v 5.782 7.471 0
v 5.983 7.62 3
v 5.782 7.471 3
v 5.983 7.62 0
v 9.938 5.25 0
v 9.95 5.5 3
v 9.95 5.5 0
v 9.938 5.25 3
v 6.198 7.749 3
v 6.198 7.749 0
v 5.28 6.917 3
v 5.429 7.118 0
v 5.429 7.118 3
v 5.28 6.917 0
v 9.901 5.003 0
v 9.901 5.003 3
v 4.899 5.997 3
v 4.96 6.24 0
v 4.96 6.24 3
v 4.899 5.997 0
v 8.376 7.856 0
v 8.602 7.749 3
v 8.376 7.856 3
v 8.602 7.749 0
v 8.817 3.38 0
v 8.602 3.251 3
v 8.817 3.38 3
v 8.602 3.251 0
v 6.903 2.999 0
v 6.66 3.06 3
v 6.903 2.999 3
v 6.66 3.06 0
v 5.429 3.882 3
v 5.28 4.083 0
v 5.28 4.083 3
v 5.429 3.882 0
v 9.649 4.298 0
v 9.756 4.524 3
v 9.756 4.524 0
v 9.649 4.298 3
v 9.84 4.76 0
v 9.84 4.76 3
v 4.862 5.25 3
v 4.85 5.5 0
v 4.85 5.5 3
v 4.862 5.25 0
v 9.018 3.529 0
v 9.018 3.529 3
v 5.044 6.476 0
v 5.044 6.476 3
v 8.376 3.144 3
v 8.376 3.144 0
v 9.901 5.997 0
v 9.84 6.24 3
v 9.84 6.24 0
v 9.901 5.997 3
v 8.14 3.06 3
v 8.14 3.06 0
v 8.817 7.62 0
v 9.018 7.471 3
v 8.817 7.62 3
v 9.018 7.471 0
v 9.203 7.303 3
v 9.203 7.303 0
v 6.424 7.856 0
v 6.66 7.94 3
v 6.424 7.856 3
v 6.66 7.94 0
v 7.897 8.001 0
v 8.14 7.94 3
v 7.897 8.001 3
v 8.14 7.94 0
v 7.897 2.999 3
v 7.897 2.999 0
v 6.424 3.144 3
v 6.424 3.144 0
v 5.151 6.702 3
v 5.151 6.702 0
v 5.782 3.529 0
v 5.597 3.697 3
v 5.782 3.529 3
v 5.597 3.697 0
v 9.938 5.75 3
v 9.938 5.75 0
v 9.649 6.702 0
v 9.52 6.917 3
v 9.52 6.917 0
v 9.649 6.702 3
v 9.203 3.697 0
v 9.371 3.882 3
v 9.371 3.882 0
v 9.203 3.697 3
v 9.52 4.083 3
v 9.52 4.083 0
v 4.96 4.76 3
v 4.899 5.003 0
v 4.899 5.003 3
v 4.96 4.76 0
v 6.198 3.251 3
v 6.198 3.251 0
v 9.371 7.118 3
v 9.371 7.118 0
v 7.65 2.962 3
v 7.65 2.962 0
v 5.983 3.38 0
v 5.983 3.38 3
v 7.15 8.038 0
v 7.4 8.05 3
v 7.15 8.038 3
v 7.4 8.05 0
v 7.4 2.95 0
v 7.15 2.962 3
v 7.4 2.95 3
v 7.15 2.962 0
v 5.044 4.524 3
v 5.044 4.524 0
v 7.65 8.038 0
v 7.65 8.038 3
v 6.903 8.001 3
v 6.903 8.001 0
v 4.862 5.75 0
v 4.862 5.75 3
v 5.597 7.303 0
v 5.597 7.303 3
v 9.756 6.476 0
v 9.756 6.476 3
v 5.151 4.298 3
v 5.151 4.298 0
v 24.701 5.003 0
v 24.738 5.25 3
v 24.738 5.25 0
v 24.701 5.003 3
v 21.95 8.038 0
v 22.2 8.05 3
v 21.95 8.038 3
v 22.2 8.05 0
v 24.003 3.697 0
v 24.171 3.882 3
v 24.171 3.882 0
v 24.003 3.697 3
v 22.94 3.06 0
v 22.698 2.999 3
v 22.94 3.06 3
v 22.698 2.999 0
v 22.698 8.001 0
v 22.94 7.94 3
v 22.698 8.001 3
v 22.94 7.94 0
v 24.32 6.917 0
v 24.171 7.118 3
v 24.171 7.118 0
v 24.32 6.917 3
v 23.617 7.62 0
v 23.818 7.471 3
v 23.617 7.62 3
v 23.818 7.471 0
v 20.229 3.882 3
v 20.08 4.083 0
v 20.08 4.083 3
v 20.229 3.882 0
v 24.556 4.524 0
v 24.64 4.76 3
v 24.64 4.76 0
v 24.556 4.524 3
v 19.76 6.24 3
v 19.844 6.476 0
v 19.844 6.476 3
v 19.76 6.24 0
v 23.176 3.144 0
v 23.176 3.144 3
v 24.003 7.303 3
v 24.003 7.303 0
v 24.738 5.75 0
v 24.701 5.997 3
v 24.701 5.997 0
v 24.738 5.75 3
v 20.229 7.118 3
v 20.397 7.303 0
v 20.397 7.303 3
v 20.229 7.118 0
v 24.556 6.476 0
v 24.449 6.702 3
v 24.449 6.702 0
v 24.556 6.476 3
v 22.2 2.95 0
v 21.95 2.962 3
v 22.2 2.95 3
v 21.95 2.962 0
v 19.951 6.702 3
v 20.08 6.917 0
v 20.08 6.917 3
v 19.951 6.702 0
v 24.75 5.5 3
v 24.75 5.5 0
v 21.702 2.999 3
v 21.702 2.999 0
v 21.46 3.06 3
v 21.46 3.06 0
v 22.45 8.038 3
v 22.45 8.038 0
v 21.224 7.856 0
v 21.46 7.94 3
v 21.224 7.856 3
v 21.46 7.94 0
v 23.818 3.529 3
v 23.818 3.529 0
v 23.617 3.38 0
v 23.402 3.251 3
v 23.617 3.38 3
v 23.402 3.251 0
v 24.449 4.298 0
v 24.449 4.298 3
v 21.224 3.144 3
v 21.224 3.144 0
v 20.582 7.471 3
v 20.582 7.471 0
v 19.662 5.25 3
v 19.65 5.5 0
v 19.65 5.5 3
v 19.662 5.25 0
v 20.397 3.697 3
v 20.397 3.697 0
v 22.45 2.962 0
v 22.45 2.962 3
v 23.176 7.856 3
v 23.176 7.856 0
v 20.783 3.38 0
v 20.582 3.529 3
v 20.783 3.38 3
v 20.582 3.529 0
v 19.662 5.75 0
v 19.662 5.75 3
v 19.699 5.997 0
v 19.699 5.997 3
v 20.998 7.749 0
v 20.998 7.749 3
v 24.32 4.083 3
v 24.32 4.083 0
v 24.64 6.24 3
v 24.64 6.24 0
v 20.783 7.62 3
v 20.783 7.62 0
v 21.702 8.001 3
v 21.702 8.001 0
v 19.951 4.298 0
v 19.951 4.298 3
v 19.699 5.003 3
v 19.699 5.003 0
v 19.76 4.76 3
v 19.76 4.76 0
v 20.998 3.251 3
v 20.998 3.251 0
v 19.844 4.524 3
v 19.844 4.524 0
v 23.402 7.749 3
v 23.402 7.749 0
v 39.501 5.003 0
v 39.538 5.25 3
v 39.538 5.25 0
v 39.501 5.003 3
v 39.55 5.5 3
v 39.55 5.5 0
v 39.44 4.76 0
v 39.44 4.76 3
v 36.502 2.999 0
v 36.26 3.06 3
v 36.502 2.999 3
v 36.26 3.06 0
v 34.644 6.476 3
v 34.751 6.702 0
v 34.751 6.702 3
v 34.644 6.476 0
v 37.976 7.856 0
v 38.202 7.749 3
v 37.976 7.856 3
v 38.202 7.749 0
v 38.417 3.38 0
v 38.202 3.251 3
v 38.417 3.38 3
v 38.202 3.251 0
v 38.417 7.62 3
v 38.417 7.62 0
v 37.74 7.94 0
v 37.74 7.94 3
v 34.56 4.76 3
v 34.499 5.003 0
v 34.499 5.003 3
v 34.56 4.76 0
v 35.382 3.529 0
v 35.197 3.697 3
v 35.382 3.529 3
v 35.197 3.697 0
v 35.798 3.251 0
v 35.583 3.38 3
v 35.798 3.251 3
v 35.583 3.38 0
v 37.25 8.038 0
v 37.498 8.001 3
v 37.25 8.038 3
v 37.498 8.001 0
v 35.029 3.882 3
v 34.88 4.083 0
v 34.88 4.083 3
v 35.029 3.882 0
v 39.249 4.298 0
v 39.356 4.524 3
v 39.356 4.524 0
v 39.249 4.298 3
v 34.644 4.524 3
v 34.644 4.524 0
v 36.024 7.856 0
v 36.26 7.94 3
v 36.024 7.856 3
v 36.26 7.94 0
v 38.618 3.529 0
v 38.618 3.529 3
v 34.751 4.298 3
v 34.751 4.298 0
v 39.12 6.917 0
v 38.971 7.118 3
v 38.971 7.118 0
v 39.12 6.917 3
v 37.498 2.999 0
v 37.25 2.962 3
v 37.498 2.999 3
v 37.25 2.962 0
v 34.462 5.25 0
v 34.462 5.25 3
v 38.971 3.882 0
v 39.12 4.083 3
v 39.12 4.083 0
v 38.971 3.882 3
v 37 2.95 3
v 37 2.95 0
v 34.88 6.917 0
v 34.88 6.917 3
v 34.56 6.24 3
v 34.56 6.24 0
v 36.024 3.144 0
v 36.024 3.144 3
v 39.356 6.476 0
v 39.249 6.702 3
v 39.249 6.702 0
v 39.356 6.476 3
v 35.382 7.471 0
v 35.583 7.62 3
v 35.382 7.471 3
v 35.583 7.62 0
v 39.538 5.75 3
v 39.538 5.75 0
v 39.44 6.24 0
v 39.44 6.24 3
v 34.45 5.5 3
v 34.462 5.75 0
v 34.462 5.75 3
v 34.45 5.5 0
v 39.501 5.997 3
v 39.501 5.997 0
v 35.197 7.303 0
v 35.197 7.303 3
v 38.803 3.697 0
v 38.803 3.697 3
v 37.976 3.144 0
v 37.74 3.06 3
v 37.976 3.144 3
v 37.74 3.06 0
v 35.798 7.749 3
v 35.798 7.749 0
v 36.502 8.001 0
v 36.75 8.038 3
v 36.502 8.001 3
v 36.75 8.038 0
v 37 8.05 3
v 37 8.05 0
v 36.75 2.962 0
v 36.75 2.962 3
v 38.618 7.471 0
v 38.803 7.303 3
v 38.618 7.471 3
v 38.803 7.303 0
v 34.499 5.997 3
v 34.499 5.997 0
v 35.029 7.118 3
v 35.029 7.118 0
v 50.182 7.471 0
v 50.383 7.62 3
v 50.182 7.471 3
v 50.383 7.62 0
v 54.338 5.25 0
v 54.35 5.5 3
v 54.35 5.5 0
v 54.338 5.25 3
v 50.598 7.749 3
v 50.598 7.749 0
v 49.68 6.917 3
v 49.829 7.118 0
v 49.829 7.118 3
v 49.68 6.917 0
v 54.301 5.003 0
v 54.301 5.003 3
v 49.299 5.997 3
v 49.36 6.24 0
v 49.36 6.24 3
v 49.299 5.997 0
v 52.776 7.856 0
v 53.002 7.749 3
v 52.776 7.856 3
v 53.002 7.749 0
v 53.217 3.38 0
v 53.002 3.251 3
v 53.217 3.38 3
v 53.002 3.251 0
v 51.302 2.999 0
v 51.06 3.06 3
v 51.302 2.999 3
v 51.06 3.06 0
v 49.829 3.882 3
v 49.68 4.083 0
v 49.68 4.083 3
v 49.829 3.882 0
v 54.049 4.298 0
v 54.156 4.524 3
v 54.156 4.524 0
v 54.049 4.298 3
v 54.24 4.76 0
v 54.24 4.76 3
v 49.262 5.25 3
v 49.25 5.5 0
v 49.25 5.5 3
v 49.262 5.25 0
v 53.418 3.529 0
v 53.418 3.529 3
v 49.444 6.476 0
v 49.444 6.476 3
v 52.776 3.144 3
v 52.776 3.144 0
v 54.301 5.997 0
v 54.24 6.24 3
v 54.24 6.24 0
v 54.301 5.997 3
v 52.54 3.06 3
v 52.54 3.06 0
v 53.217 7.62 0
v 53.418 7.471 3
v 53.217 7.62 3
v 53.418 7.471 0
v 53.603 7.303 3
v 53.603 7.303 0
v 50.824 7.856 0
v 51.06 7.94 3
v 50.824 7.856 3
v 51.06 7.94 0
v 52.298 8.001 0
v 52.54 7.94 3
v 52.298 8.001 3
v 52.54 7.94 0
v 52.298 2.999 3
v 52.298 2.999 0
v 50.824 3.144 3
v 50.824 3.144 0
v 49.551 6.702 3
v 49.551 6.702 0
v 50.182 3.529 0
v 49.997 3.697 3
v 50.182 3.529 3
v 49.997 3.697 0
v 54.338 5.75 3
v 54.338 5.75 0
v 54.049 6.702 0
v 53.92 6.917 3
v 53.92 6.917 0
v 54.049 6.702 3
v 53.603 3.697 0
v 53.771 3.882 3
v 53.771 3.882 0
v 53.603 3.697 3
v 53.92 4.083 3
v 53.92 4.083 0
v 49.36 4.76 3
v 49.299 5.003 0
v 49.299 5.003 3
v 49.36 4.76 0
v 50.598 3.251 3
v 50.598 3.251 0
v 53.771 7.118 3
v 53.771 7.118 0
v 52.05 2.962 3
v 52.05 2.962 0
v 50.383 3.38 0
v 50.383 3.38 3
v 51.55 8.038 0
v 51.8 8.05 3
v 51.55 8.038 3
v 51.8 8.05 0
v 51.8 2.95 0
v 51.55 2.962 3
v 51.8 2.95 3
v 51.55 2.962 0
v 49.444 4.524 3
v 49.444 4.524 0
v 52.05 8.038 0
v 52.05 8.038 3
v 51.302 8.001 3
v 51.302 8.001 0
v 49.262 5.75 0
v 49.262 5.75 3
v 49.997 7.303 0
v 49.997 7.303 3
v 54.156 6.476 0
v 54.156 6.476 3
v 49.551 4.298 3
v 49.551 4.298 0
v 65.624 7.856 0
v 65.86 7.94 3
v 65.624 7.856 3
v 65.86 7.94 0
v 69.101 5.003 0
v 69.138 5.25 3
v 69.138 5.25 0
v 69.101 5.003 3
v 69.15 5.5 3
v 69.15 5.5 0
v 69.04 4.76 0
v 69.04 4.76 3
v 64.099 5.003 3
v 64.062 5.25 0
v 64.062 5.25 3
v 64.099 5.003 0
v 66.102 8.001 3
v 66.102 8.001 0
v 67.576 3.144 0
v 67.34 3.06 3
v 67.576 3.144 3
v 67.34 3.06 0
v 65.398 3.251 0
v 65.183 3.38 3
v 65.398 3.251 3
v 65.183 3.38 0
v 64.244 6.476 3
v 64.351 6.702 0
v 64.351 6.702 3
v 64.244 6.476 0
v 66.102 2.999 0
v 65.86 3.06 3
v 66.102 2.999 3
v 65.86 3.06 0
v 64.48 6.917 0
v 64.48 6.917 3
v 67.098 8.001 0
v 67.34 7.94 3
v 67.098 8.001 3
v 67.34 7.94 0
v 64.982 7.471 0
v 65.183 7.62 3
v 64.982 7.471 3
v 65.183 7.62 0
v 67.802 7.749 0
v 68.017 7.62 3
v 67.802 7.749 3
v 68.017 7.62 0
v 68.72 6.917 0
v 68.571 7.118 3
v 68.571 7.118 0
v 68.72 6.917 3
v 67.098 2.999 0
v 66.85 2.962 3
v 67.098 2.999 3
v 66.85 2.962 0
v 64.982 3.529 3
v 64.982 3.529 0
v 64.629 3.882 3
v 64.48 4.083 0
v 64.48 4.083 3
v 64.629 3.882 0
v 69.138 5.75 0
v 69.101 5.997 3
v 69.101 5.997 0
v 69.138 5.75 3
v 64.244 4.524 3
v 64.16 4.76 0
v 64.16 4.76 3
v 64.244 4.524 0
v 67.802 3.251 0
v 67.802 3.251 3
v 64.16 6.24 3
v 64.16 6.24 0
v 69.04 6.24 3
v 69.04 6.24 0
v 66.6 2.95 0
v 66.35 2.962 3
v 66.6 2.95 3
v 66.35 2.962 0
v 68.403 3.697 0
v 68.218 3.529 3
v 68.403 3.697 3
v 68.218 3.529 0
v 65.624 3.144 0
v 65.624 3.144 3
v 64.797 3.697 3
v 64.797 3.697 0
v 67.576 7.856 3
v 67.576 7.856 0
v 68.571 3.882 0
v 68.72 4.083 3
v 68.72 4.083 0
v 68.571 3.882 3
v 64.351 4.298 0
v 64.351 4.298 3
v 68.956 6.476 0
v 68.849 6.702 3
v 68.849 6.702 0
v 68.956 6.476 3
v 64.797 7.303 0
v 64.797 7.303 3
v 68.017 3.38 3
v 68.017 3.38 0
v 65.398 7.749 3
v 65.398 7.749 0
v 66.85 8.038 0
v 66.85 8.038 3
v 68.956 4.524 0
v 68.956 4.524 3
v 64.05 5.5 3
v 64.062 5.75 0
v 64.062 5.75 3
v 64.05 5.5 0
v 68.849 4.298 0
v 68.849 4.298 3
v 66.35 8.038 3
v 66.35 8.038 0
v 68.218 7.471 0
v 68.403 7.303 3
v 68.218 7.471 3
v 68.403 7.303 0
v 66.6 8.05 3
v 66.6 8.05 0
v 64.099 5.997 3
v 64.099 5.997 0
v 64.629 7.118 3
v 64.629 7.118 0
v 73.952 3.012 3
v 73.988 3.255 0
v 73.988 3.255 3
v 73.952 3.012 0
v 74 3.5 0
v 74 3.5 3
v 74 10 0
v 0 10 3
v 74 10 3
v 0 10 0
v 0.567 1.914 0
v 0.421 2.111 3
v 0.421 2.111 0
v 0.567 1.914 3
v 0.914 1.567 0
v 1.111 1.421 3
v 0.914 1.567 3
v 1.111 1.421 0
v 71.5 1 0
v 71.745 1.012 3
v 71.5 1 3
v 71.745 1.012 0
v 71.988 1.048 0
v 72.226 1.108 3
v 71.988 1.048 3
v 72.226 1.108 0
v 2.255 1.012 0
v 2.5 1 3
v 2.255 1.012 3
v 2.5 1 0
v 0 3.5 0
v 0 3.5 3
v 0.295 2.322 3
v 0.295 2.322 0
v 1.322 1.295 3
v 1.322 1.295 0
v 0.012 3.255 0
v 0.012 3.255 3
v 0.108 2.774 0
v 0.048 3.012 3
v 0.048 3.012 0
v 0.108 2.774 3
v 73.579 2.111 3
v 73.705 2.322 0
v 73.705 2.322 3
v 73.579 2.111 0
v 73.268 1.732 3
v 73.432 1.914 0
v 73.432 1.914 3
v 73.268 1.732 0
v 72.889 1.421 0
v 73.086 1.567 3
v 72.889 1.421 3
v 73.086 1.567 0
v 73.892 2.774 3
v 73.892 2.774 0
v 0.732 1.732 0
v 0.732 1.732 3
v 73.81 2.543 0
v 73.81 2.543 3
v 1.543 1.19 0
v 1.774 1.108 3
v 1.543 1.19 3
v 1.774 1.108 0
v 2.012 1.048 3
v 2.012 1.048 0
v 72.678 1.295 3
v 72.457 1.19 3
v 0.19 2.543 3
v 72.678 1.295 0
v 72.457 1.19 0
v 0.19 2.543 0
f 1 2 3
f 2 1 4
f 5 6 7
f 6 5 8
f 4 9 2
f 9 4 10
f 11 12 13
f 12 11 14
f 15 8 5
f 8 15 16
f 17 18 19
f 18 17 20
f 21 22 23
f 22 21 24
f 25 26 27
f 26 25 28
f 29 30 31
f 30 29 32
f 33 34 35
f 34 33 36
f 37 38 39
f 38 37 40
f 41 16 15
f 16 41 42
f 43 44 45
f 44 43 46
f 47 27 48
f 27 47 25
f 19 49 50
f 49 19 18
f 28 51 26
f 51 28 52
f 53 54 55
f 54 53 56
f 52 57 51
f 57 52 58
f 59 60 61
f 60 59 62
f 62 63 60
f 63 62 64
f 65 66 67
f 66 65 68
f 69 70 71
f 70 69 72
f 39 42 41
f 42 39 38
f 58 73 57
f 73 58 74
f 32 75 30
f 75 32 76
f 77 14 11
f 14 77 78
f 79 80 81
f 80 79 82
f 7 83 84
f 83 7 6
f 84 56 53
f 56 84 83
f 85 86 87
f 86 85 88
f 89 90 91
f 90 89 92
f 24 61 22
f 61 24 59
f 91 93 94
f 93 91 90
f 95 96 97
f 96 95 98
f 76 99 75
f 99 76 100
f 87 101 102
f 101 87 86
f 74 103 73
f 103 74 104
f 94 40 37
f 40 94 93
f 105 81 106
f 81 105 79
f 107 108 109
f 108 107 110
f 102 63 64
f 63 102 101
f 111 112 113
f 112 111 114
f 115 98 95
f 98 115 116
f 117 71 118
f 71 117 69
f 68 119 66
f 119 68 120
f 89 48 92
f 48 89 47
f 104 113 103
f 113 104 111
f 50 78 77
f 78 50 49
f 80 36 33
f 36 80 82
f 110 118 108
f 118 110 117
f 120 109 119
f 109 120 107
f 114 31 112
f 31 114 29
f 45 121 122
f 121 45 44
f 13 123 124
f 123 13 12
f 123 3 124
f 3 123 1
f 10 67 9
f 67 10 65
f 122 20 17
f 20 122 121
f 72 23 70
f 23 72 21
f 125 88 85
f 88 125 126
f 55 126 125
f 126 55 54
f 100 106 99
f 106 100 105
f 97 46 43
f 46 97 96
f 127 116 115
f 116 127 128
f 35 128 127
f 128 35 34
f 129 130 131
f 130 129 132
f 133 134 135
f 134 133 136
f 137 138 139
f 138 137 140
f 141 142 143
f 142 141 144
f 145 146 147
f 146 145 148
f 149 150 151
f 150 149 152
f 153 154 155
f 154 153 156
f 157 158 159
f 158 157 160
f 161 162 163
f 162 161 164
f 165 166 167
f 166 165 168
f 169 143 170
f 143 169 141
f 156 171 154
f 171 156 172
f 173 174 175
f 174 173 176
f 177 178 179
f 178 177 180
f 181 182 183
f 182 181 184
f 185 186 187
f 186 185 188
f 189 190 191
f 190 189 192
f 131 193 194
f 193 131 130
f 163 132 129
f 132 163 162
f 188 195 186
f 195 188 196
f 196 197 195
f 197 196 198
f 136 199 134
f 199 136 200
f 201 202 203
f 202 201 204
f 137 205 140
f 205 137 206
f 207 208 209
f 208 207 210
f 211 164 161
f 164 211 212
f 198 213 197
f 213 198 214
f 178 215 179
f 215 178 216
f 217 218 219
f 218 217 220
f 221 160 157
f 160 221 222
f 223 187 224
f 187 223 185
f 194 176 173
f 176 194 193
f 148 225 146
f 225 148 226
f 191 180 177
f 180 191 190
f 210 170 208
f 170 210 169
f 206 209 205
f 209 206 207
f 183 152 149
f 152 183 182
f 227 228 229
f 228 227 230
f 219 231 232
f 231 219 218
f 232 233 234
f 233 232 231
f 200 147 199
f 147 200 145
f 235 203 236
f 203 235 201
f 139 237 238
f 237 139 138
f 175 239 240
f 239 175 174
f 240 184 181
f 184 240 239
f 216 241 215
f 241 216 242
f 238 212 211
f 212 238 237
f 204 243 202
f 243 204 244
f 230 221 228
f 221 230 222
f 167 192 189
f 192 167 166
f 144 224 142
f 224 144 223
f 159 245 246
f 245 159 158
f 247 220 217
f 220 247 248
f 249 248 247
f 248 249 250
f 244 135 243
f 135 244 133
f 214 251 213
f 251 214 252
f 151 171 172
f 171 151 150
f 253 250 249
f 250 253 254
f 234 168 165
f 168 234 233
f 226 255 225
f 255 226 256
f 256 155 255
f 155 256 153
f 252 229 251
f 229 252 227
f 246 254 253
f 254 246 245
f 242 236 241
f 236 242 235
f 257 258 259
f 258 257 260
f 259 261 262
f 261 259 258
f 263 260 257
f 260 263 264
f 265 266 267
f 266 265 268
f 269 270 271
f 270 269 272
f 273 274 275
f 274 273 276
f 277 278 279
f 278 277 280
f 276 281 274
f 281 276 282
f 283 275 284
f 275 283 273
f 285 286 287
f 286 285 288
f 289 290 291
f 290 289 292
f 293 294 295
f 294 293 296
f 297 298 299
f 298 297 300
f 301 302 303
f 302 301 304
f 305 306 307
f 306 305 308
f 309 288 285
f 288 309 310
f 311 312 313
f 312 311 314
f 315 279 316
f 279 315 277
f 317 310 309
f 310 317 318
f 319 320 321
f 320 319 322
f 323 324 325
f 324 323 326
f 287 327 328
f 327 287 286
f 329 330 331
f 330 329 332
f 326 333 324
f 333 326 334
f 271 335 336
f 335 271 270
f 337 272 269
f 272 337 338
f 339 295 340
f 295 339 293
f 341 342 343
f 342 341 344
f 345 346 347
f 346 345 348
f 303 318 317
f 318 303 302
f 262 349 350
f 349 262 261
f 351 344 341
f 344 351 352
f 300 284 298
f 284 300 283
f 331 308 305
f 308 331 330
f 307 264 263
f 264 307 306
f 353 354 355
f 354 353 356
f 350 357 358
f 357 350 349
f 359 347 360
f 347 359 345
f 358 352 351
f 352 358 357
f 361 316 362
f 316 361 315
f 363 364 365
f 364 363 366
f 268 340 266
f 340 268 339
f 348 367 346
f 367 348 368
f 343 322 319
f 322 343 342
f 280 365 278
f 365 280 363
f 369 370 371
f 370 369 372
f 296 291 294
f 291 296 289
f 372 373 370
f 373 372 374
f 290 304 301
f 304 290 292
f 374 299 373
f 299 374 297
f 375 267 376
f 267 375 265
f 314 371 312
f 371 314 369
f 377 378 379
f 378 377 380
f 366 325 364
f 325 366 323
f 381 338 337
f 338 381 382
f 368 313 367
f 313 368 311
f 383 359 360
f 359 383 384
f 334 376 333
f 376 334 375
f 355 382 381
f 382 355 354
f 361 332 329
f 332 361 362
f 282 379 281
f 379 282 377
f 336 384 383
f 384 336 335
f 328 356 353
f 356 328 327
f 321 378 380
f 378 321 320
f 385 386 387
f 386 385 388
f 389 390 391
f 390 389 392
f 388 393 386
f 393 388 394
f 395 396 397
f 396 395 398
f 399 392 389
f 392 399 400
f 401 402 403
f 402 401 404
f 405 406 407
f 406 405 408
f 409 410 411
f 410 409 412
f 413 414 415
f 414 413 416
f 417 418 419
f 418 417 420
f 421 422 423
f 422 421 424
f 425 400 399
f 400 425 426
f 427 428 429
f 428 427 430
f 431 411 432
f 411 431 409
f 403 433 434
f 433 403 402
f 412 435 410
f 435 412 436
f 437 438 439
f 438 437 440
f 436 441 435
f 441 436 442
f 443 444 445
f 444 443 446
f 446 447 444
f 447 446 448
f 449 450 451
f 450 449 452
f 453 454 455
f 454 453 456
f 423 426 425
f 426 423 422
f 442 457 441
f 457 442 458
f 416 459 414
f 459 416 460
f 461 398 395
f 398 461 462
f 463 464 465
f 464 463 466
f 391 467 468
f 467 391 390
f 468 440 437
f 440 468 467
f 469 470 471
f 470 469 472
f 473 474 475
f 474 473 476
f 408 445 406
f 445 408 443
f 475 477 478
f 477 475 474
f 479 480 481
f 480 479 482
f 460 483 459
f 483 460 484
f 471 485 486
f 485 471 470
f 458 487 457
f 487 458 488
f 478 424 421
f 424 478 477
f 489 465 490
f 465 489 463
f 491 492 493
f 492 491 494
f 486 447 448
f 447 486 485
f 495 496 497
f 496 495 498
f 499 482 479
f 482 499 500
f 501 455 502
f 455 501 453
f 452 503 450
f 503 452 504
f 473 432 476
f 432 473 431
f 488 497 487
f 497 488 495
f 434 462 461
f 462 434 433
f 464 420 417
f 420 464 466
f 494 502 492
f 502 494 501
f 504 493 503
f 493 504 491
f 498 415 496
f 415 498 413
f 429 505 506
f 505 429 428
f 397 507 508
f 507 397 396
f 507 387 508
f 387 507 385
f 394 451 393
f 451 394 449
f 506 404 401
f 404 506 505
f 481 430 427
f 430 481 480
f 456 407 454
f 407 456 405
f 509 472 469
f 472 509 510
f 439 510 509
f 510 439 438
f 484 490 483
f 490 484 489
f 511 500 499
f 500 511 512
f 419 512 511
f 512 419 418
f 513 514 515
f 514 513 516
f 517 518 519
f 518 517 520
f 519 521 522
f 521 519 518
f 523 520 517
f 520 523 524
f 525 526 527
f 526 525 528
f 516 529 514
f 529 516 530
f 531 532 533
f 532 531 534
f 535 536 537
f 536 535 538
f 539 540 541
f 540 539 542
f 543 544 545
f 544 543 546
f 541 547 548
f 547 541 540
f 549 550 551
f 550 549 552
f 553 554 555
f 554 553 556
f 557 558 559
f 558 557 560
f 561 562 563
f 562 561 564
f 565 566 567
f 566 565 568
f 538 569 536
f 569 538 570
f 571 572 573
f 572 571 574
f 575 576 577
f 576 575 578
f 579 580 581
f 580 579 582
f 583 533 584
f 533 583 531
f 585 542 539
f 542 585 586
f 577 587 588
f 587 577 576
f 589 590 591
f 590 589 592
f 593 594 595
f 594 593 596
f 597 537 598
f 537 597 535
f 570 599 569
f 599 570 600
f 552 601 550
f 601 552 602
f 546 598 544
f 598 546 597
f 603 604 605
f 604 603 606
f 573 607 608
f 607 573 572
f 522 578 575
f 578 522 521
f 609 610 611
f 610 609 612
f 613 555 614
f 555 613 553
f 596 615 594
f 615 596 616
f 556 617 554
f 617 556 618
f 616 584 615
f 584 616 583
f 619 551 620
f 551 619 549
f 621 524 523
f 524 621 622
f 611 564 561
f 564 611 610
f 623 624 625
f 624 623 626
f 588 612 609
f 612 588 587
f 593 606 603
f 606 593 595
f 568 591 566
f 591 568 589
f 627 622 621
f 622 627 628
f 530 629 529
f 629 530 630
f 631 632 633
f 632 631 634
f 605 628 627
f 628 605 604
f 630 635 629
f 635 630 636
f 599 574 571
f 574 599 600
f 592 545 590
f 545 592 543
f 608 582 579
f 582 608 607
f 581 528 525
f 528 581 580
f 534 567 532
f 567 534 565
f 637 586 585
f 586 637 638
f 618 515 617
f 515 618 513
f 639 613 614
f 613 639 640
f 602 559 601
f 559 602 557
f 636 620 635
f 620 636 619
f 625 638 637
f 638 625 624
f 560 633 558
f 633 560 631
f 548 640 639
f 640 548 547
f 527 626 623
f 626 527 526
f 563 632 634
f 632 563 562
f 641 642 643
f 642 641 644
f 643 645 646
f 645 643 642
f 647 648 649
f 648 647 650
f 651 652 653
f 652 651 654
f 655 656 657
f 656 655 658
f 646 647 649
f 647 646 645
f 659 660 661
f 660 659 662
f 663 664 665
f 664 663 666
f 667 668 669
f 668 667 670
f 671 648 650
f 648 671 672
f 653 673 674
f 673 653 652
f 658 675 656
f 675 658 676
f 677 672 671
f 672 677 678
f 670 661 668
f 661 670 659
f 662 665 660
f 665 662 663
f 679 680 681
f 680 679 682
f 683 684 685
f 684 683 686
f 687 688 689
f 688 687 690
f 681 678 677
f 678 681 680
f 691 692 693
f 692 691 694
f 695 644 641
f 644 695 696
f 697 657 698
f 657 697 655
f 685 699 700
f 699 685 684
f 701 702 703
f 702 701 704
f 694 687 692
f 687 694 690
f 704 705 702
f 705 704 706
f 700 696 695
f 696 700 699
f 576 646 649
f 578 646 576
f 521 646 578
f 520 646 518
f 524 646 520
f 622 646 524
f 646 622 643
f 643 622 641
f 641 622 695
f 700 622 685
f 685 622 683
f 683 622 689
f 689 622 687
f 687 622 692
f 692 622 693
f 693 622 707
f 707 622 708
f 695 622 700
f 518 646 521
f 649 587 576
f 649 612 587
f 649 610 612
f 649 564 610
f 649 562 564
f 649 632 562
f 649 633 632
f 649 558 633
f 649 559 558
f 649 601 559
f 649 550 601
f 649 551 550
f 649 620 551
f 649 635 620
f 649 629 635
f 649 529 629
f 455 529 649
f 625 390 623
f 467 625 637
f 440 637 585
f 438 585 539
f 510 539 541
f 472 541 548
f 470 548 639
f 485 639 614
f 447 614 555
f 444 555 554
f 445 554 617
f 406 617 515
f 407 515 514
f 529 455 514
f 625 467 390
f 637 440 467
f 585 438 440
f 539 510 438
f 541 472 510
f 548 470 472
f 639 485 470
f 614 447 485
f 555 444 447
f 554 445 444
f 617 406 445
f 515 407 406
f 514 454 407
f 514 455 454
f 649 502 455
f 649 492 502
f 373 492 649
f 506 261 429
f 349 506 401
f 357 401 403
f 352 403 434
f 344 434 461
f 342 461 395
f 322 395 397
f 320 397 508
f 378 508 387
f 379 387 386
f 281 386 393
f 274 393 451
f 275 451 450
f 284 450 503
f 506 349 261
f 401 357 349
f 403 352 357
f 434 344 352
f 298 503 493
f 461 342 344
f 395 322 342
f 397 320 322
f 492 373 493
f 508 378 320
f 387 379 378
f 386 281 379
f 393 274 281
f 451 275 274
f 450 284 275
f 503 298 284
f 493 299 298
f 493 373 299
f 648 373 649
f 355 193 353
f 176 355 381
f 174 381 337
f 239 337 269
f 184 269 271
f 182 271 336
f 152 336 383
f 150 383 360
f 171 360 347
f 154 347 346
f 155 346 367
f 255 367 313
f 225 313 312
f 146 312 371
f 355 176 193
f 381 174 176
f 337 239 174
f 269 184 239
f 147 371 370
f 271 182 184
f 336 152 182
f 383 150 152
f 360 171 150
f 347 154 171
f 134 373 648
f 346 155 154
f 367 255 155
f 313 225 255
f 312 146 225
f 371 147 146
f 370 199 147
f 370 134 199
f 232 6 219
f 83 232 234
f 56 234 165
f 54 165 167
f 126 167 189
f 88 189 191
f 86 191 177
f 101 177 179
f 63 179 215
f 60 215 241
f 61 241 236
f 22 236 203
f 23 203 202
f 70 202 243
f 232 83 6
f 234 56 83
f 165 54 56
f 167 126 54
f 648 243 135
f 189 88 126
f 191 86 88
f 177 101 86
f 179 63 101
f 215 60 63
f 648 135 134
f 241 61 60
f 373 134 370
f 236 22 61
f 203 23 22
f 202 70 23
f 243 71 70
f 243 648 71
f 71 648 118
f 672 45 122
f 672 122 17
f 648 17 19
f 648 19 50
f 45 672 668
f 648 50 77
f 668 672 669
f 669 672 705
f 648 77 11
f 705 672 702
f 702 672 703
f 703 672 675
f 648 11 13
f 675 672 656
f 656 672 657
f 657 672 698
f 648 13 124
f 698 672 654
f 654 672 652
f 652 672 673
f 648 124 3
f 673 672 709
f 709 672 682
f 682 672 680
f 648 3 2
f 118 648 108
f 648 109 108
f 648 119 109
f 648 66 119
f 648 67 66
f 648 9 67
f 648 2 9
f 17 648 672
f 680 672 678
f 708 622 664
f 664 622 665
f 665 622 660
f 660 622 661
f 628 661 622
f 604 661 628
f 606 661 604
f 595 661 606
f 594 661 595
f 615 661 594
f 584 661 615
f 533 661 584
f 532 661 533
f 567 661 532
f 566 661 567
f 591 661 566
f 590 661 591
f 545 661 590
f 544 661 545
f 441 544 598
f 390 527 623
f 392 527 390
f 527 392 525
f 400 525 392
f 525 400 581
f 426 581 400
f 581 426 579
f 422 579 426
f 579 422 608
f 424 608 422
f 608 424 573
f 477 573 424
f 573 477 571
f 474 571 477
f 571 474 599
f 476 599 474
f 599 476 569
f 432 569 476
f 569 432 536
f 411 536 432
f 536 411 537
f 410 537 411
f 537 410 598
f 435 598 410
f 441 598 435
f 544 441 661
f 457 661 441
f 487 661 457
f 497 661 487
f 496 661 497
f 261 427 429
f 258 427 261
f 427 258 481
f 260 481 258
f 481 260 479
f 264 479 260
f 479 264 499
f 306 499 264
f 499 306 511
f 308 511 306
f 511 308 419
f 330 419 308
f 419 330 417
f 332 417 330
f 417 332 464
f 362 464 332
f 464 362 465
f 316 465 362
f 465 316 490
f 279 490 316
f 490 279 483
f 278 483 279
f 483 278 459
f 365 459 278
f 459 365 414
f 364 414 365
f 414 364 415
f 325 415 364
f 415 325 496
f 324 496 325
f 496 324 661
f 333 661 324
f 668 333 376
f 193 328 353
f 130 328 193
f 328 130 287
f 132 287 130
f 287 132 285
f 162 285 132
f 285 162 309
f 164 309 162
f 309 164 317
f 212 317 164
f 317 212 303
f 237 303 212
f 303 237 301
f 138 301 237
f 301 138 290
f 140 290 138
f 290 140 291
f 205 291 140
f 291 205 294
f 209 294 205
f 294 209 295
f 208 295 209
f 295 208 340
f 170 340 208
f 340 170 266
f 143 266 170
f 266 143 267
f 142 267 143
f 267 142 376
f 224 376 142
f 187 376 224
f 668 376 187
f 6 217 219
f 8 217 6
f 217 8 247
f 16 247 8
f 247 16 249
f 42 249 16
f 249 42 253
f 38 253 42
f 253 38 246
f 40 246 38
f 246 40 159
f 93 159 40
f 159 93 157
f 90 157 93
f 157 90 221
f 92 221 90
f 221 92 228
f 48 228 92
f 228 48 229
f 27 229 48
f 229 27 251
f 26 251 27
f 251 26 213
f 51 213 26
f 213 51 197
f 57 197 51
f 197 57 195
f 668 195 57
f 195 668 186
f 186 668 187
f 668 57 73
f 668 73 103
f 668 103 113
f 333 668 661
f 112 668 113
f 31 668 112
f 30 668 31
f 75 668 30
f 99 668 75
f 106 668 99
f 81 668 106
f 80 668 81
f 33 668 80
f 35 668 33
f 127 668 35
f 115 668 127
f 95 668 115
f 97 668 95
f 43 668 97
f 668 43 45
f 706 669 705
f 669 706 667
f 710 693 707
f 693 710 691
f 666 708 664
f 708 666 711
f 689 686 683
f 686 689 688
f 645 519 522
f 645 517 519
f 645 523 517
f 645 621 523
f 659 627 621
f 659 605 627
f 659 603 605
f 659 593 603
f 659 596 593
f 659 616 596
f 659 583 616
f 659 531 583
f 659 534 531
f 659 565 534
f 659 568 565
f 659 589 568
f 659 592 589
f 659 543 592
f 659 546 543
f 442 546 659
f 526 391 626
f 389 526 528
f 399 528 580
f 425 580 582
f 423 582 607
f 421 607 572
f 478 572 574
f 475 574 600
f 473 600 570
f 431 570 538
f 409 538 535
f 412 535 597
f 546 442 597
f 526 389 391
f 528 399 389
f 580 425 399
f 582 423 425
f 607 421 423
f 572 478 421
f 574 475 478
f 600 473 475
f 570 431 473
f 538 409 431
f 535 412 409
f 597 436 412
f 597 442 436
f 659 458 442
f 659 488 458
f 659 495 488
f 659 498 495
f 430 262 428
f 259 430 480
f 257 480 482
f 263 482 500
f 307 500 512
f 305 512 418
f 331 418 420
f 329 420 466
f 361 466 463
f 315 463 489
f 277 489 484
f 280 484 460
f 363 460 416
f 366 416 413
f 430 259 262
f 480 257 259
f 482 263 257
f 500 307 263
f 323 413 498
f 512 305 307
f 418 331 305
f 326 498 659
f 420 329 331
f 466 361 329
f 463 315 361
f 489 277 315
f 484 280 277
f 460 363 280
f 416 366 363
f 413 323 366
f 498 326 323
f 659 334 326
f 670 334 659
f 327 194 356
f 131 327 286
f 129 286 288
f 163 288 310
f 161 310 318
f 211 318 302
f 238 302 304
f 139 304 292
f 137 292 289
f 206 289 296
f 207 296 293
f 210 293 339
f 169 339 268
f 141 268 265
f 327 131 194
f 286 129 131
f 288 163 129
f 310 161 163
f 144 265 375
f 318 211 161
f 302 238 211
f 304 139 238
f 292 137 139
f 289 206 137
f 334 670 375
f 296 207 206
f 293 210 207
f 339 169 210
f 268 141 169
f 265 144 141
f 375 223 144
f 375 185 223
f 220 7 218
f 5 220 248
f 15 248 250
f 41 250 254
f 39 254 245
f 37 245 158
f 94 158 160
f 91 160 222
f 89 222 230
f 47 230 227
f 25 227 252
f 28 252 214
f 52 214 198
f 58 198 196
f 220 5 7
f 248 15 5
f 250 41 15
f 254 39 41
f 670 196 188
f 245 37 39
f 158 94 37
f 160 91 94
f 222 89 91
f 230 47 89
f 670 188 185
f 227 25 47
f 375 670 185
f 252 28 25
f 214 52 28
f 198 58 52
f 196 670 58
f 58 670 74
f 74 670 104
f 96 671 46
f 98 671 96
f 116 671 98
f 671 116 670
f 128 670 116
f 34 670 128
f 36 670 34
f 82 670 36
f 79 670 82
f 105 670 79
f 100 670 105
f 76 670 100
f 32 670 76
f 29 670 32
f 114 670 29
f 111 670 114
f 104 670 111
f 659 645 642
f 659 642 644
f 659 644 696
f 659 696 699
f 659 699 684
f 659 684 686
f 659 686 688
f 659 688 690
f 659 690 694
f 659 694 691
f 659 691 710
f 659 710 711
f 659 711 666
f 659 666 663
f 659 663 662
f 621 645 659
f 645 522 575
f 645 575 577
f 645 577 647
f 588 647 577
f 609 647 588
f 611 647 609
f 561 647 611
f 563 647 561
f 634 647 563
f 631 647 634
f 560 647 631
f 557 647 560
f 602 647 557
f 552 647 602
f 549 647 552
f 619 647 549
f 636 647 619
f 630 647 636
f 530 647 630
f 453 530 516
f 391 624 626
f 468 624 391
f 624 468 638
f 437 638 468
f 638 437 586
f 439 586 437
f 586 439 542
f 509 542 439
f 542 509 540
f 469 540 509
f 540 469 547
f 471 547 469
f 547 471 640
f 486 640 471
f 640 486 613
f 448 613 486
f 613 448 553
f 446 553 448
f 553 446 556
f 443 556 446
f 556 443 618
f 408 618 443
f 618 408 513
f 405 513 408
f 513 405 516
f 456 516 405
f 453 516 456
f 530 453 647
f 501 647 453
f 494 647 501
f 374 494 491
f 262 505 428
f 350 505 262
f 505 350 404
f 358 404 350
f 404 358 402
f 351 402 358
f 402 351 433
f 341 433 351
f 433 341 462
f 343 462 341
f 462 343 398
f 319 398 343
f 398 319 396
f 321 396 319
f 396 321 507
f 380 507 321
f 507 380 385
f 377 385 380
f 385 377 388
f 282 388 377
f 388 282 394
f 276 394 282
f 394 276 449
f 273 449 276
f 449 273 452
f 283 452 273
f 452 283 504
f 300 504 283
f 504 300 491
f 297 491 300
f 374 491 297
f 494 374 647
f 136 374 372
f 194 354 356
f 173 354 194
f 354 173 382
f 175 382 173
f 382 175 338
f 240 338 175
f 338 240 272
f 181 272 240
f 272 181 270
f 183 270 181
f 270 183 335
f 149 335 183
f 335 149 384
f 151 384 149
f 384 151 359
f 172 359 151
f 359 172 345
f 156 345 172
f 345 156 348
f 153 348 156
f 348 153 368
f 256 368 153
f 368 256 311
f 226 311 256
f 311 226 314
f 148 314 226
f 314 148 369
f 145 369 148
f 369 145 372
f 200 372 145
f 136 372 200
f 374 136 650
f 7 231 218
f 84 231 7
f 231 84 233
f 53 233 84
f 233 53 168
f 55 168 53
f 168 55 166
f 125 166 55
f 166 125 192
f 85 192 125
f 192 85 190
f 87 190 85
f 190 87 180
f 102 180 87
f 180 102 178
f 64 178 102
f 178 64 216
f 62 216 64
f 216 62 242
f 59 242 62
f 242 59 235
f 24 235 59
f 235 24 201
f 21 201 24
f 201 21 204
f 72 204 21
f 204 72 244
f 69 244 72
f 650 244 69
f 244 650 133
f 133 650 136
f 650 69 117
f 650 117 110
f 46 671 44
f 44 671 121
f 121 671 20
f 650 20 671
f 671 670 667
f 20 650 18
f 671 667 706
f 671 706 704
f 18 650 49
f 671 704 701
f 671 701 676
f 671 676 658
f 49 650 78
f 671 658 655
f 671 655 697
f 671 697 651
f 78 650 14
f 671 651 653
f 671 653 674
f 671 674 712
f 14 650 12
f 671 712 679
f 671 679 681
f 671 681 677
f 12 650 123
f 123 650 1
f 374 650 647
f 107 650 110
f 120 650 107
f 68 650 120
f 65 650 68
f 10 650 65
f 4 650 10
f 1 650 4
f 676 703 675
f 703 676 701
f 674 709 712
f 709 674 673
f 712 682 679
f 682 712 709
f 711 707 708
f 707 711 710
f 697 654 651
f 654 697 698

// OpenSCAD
    

//square([75.5, 7]);

$fn = 64;

fillet = 2.5;

magnet_dia = 5;
magnet_count = 5;
magnet_thickness = 3;

xy_thickness = 2;
z_thickness = 0.8;
tol = 0.2;

mount_height = 74;
mount_width = magnet_dia + xy_thickness*2;
handle_thickness = 6.6;

handle_width = 15;

module square_fillet_one_edge(dim, fillet)  {
    
    translate([0,-fillet])
    difference() {
    
    offset(fillet)
    offset(delta = -fillet)
    square([dim[0], dim[1] + fillet]);
    //translate([-tol,-tol])
    
    translate([-1,-1])
    square([dim[0] + 2, fillet + 1]);
    }
}

module magnet_side() {

    difference() {

        linear_extrude(magnet_thickness)
        square_fillet_one_edge([mount_height, mount_width], fillet);

        for (i = [0:magnet_count-1])
            translate([i * (mount_height / magnet_count) + mount_height / (magnet_count*2), mount_width / 2, -tol])
                cylinder(d = magnet_dia + 0.1, h = magnet_thickness + tol*2);

    }
}


module main_side() {
    
    hole_distance = 64;
    
    
    
    //translate([0,-handle_width])
    difference() {
        linear_extrude(handle_thickness)
        difference() {
            
            square_fillet_one_edge([mount_height, handle_width + mount_width], fillet);
            
            translate([(mount_height - hole_distance) / 2, 9.3 / 2])
            circle(d = 4.2);
            
            translate([(mount_height - hole_distance) / 2 + hole_distance, 9.3 / 2])
            circle(d = 4.2);            
        }
        
        translate([-tol,0,0])
        rotate([90,0,90])
        linear_extrude(mount_height + tol*2)
        polygon([
            [9.6 - tol, -tol], 
            [handle_width + mount_width + tol, -tol], 
            [handle_width + mount_width + tol, magnet_thickness + tol], 
            [9.6 + magnet_thickness + tol, magnet_thickness + tol]
        ]);
        
        translate([xy_thickness,xy_thickness + handle_width + tol,magnet_thickness])
            cube([mount_height - xy_thickness*2, magnet_dia + tol*2, 1 + tol*2]);

    }

}



//tt = 5;


//translate([0,0,6])
*rotate([180,0,0])
main_side();

translate([0,10,magnet_thickness])
rotate([180,0,0])
magnet_side();
